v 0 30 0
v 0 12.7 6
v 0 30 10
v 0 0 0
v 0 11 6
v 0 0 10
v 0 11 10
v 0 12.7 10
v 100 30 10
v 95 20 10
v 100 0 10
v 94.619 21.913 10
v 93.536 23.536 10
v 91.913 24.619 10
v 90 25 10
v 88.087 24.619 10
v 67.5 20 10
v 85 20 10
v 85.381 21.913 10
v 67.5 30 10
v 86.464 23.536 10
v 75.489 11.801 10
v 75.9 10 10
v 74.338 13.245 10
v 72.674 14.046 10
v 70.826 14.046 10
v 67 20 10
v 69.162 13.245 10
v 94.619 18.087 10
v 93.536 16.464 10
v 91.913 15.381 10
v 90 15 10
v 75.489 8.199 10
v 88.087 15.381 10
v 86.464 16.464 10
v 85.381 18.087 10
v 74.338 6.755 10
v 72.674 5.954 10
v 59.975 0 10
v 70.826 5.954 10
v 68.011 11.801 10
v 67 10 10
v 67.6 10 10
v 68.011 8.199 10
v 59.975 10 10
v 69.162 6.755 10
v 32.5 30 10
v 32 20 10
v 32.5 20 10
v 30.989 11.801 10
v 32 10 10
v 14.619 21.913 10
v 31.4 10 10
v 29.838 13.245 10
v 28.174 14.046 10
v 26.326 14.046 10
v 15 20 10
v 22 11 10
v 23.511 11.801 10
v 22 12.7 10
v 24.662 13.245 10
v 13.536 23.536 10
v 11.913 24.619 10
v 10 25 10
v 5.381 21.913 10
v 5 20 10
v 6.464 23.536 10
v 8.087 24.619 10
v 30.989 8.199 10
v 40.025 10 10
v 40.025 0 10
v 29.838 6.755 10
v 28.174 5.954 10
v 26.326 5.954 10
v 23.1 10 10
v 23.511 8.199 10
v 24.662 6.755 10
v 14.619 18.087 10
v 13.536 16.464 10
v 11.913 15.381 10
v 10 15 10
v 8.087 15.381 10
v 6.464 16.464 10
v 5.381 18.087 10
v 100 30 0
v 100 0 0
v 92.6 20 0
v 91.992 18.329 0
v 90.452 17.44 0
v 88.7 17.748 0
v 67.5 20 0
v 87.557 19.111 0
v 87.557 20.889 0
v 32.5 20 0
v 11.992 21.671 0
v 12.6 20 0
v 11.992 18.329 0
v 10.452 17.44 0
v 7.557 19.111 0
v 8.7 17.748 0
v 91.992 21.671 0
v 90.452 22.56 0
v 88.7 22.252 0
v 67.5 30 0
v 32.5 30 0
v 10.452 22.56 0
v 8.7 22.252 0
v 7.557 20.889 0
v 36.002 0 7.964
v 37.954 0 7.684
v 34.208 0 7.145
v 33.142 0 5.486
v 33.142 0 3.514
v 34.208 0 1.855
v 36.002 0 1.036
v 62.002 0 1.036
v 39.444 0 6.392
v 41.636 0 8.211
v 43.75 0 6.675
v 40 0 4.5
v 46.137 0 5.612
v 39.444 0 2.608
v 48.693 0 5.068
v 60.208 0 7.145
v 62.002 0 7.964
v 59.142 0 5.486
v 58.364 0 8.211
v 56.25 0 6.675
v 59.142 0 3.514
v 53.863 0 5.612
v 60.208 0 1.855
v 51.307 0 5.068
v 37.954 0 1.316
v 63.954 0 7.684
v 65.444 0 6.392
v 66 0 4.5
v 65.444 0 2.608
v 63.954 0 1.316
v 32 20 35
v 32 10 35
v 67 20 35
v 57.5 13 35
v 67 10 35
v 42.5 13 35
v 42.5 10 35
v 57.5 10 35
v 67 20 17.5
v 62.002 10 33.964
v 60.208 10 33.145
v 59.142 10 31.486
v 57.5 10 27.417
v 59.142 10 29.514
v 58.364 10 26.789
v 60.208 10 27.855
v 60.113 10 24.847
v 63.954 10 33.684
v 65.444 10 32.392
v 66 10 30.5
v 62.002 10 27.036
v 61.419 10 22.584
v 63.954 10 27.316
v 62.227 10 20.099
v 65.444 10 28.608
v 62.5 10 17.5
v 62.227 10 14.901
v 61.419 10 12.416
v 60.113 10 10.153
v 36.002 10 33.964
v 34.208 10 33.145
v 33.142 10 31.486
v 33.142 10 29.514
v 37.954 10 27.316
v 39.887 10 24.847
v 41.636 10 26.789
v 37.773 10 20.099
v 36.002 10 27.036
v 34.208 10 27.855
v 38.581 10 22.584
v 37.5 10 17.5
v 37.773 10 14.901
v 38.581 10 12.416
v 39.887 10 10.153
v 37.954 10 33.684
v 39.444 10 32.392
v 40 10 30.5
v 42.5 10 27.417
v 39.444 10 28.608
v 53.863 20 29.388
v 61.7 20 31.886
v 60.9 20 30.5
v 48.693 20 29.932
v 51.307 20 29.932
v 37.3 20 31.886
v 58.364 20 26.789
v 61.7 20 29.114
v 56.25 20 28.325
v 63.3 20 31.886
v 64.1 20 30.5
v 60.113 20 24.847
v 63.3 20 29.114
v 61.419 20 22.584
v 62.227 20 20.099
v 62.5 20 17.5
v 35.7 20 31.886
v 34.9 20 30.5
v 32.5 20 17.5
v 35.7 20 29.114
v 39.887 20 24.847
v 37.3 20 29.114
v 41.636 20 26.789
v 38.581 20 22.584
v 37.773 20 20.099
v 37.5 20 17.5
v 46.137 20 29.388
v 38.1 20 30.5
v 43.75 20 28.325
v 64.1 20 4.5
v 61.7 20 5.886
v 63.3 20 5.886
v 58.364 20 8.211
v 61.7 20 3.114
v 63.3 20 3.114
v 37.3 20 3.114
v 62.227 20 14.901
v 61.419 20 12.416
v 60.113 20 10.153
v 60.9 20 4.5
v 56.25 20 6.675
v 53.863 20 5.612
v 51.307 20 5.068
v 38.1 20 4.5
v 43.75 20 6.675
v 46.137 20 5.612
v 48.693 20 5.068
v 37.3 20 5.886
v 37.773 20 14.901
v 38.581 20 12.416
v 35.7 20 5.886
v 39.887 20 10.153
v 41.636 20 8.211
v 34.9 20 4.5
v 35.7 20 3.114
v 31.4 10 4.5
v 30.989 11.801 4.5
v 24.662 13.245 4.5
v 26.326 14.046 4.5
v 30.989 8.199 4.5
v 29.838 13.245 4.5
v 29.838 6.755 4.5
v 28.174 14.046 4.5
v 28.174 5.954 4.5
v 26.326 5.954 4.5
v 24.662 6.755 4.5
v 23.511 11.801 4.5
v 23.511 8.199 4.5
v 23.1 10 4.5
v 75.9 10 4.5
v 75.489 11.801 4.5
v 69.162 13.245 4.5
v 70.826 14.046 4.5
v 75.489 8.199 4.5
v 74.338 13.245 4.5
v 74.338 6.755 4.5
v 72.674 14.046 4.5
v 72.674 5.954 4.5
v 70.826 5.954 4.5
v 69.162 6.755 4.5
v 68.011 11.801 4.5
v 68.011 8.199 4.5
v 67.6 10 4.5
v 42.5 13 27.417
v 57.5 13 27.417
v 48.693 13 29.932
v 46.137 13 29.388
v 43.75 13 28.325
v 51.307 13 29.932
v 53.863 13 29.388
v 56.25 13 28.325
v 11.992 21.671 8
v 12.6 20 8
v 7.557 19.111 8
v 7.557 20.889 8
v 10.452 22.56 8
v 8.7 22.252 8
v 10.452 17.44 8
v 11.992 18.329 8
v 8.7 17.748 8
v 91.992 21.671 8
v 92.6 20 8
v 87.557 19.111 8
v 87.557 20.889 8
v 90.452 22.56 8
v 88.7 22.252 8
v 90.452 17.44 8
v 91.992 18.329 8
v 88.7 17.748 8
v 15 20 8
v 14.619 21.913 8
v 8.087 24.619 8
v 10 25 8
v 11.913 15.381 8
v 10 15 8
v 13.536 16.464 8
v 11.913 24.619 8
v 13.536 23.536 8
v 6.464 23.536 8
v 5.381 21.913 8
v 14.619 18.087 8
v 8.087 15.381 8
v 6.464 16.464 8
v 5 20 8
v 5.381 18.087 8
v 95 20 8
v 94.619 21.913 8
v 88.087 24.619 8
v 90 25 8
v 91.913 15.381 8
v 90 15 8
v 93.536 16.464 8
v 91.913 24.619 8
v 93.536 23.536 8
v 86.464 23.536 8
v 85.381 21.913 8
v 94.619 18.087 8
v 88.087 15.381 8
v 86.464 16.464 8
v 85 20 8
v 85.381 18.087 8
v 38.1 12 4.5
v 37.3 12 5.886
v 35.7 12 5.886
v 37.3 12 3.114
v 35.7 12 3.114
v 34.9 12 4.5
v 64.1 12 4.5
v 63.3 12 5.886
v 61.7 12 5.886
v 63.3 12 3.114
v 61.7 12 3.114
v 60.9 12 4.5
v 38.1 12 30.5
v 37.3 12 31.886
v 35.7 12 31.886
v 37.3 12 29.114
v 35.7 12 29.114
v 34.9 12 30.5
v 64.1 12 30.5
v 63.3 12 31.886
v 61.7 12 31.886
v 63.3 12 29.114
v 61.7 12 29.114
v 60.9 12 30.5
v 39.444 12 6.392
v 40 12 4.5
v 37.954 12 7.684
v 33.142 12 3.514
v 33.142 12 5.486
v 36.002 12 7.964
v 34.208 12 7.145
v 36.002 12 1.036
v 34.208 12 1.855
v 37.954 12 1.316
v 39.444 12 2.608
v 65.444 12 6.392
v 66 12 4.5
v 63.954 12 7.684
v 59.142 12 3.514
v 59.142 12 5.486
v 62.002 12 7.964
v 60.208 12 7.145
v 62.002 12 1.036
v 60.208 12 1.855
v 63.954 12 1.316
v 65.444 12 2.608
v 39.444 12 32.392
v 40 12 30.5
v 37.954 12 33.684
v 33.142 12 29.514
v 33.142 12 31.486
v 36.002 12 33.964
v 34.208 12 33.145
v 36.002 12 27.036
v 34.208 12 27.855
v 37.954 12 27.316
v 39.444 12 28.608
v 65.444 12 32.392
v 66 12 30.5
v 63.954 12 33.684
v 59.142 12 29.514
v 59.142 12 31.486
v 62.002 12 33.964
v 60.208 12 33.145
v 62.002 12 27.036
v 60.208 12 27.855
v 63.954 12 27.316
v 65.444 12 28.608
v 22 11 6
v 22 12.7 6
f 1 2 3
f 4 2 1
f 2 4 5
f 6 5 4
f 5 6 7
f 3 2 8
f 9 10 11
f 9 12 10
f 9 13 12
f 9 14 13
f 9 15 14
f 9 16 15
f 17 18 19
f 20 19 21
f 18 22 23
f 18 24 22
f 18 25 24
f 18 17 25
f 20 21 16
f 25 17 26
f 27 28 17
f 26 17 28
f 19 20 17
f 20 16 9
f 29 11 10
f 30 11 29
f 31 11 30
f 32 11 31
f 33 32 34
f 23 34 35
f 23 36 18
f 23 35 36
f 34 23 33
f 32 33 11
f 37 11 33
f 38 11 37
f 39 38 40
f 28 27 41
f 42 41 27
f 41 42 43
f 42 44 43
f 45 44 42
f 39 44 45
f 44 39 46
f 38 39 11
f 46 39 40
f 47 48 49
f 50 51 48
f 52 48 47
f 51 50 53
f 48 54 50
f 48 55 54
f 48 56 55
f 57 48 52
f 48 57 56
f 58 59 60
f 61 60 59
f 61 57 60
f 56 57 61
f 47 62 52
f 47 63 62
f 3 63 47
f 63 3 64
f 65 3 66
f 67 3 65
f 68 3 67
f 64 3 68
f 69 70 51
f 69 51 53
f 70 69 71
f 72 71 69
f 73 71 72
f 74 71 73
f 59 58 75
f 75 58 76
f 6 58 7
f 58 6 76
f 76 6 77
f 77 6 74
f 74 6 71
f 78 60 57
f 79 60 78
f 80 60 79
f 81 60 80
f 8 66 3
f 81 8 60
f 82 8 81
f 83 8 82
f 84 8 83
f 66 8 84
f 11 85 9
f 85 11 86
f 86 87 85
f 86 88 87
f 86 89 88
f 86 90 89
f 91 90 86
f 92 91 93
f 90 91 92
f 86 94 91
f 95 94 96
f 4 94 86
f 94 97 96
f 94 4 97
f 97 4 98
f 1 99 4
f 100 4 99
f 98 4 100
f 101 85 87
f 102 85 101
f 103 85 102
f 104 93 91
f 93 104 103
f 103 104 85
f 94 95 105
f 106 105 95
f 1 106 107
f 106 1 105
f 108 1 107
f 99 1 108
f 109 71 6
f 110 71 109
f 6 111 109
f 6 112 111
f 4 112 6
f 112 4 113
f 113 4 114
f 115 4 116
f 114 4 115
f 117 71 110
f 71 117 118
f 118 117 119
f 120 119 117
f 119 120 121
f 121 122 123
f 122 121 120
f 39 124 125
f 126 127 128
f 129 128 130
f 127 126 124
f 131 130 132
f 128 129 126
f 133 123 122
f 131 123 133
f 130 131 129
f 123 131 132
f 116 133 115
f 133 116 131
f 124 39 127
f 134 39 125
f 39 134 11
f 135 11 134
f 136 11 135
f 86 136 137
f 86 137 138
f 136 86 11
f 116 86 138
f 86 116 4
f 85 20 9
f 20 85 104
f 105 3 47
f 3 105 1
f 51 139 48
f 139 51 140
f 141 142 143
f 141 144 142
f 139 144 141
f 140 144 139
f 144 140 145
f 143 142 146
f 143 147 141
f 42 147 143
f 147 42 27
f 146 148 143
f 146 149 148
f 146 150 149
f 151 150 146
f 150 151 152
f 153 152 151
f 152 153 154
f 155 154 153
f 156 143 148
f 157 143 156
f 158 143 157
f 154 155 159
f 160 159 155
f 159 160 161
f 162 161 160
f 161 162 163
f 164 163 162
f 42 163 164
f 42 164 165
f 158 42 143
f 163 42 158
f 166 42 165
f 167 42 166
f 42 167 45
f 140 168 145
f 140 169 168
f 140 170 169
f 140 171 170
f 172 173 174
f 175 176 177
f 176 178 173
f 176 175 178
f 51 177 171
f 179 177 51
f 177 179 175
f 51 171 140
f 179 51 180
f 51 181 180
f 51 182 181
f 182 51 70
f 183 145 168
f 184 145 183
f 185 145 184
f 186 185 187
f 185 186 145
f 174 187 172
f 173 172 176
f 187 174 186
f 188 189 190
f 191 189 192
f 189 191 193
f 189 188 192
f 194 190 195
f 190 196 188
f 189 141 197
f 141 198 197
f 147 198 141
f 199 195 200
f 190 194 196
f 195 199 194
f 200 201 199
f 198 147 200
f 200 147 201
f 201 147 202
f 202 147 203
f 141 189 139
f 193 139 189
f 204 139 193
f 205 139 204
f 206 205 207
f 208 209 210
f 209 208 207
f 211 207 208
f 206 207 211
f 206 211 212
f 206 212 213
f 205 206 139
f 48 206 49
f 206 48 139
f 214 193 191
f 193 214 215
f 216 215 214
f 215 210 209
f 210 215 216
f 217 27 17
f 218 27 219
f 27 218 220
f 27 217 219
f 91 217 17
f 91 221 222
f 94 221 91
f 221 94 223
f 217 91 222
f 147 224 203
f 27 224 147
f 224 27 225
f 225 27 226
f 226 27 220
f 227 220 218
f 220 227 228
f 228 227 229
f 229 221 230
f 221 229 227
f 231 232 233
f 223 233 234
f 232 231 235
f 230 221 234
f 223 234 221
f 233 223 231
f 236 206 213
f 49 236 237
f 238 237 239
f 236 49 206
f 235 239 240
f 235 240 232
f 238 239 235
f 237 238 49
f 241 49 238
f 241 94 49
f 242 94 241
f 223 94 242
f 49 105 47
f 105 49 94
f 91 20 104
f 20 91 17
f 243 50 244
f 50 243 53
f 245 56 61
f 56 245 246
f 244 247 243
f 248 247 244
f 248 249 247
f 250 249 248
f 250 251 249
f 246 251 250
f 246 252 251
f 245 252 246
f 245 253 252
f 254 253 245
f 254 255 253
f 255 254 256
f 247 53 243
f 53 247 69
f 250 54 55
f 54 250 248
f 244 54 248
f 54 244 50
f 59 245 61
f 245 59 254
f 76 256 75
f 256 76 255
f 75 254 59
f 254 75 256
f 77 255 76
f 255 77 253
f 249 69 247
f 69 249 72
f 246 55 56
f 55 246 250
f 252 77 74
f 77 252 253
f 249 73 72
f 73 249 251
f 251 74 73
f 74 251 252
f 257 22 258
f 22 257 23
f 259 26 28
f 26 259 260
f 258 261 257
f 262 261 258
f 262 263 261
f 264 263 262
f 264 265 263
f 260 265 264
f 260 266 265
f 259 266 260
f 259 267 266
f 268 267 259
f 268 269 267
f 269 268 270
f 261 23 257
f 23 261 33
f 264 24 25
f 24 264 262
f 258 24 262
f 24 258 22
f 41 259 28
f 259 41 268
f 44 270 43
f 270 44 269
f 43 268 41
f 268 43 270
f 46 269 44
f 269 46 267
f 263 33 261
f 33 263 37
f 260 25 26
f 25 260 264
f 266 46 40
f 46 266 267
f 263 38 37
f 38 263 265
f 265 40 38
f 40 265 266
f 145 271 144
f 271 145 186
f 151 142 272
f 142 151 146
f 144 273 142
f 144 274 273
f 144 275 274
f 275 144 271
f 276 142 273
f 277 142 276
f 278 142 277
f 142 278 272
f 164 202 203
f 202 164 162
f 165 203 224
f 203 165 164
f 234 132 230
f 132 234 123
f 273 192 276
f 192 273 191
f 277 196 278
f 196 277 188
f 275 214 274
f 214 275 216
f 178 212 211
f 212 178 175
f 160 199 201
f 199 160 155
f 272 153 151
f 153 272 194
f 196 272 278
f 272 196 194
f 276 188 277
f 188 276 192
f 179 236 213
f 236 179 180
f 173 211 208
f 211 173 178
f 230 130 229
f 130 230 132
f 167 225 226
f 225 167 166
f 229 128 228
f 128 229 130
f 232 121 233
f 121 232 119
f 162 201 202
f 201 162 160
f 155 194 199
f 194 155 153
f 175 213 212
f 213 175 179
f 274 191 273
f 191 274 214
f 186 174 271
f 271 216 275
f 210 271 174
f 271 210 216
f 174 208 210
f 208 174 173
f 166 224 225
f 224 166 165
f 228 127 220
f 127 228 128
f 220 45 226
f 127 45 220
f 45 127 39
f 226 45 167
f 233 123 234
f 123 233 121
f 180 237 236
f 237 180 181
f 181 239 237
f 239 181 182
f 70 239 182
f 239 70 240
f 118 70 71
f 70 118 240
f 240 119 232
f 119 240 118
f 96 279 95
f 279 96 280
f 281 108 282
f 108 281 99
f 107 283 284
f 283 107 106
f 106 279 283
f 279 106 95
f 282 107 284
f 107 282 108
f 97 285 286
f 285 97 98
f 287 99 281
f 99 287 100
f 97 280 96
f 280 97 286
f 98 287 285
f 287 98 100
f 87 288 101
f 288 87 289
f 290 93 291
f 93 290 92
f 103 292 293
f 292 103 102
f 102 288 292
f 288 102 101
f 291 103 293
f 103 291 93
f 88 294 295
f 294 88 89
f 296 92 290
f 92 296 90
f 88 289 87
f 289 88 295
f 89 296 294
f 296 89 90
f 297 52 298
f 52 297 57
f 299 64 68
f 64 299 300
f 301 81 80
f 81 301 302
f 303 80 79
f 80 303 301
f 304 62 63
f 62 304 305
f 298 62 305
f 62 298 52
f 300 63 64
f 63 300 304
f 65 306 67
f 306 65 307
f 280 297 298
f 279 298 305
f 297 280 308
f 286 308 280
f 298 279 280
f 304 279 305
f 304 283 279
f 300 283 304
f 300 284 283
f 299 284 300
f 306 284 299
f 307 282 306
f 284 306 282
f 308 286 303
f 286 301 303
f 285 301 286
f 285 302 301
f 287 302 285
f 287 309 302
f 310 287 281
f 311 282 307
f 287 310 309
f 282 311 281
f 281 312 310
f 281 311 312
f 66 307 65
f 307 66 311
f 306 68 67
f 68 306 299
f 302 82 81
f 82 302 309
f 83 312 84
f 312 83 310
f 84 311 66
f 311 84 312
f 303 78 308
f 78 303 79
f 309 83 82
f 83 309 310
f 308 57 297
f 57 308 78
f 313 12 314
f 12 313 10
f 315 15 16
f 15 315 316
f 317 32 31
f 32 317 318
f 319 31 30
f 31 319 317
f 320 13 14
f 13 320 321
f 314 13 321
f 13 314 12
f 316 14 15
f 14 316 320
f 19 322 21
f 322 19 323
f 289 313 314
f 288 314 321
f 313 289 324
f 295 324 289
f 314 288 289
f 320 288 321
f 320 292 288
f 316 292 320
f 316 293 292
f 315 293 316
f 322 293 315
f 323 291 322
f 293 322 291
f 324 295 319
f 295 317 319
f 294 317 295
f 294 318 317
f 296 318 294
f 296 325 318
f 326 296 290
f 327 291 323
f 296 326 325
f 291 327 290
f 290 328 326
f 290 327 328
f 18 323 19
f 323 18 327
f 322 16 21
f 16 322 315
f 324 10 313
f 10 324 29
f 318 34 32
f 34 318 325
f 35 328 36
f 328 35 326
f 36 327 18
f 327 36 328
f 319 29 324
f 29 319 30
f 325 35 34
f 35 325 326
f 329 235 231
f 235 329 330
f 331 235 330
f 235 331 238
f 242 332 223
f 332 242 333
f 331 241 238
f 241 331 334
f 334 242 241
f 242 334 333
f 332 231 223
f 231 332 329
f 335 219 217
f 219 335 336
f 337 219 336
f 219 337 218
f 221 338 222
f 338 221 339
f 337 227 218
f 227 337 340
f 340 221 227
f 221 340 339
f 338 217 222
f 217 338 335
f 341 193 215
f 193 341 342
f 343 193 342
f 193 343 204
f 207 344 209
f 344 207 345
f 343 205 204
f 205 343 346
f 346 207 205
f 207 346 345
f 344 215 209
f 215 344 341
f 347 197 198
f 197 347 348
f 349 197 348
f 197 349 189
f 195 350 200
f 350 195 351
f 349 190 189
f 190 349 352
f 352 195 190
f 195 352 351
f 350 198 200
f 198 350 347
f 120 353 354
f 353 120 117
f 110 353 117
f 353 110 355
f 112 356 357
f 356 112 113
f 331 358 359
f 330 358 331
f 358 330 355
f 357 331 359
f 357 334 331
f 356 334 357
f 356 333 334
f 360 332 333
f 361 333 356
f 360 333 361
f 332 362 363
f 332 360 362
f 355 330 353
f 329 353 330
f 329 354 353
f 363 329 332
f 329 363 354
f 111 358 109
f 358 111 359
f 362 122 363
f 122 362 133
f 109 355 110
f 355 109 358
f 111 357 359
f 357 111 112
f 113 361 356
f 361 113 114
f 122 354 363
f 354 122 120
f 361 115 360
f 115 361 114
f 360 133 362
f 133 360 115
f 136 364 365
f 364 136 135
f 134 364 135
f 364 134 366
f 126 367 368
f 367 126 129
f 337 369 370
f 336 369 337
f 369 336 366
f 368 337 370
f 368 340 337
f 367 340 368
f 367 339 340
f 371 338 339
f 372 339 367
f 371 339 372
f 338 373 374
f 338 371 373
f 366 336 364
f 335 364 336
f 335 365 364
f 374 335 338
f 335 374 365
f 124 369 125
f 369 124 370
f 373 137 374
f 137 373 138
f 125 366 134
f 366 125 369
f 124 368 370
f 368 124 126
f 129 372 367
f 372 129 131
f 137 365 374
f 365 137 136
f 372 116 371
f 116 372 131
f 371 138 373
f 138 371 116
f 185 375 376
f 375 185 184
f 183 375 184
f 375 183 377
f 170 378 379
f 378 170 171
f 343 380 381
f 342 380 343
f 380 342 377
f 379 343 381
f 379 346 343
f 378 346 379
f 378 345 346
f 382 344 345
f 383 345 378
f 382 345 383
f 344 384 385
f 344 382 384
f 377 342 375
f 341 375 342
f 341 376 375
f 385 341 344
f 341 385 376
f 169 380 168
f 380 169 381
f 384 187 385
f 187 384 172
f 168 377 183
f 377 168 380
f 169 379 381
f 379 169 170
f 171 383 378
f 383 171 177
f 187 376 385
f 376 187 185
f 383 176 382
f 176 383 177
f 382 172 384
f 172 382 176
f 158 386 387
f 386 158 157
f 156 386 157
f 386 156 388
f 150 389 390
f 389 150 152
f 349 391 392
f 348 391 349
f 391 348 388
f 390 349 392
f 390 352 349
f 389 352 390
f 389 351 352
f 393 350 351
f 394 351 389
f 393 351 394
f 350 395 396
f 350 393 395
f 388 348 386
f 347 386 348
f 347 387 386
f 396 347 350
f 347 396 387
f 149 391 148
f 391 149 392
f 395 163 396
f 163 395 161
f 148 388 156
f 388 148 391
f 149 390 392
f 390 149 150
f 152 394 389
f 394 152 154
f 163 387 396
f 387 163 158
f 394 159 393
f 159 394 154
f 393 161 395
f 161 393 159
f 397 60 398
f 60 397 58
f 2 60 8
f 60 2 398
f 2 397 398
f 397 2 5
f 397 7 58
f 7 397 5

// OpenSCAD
// X_motor

difference() {
    start();
    translate([50, 25, 0]) cube([35, 10, 35], center=true);
    translate([27.25,10,4.5])
      cylinder (h = 30, r=4.15); //hole for 8-mm rod
    translate([71.75,10,4.5])
      cylinder (h = 30, r=4.15); //hole for 8-mm rod
    translate([42.5,10,26])
      cube([15,3,9]);
    rotate([90,0,0]) translate([50,17.5,-25])
      cylinder(h=30, r=12.5); //hole for motor
    translate([10,20,-10])
      cylinder (h = 30, r = 2.6); //M5 screw
    translate([90,20,-10])
      cylinder ( h=30, r=2.6); //M5 screw
//Sinkings for M5 screws
    translate([10,20,8])
      cylinder (h=10, r=5);
    translate([90,20,8])
      cylinder (h=10, r=5);
//Screws for motor Nema 14
    rotate([90,0,0]) translate([36.5,4.5,-25])
      cylinder (h=30, r=1.6);
    rotate([90,0,0]) translate([62.5,4.5,-25])
      cylinder (h=30, r=1.6);
    rotate([90,0,0]) translate([36.5,30.5,-25])
      cylinder (h=30, r=1.6);
    rotate([90,0,0]) translate([62.5,30.5,-25])
      cylinder (h=30, r=1.6);
//Sinkings for motor screws
    rotate([90,0,0]) translate([36.5,4.5,-12])
      cylinder (h=20, r=3.5);
    rotate([90,0,0]) translate([62.5,4.5,-12])
      cylinder (h=20, r=3.5);
    rotate([90,0,0]) translate([36.5,30.5,-12])
      cylinder (h=20, r=3.5);
    rotate([90,0,0]) translate([62.5,30.5,-12])
      cylinder (h=20, r=3.5);
//Port for endstop  
    translate([0,11,6])
      cube([22,1.7,4]);
}

module start(){
    cube([100,30,10]);
    translate([32,10,0])
     cube([35,10,35]);
}   
